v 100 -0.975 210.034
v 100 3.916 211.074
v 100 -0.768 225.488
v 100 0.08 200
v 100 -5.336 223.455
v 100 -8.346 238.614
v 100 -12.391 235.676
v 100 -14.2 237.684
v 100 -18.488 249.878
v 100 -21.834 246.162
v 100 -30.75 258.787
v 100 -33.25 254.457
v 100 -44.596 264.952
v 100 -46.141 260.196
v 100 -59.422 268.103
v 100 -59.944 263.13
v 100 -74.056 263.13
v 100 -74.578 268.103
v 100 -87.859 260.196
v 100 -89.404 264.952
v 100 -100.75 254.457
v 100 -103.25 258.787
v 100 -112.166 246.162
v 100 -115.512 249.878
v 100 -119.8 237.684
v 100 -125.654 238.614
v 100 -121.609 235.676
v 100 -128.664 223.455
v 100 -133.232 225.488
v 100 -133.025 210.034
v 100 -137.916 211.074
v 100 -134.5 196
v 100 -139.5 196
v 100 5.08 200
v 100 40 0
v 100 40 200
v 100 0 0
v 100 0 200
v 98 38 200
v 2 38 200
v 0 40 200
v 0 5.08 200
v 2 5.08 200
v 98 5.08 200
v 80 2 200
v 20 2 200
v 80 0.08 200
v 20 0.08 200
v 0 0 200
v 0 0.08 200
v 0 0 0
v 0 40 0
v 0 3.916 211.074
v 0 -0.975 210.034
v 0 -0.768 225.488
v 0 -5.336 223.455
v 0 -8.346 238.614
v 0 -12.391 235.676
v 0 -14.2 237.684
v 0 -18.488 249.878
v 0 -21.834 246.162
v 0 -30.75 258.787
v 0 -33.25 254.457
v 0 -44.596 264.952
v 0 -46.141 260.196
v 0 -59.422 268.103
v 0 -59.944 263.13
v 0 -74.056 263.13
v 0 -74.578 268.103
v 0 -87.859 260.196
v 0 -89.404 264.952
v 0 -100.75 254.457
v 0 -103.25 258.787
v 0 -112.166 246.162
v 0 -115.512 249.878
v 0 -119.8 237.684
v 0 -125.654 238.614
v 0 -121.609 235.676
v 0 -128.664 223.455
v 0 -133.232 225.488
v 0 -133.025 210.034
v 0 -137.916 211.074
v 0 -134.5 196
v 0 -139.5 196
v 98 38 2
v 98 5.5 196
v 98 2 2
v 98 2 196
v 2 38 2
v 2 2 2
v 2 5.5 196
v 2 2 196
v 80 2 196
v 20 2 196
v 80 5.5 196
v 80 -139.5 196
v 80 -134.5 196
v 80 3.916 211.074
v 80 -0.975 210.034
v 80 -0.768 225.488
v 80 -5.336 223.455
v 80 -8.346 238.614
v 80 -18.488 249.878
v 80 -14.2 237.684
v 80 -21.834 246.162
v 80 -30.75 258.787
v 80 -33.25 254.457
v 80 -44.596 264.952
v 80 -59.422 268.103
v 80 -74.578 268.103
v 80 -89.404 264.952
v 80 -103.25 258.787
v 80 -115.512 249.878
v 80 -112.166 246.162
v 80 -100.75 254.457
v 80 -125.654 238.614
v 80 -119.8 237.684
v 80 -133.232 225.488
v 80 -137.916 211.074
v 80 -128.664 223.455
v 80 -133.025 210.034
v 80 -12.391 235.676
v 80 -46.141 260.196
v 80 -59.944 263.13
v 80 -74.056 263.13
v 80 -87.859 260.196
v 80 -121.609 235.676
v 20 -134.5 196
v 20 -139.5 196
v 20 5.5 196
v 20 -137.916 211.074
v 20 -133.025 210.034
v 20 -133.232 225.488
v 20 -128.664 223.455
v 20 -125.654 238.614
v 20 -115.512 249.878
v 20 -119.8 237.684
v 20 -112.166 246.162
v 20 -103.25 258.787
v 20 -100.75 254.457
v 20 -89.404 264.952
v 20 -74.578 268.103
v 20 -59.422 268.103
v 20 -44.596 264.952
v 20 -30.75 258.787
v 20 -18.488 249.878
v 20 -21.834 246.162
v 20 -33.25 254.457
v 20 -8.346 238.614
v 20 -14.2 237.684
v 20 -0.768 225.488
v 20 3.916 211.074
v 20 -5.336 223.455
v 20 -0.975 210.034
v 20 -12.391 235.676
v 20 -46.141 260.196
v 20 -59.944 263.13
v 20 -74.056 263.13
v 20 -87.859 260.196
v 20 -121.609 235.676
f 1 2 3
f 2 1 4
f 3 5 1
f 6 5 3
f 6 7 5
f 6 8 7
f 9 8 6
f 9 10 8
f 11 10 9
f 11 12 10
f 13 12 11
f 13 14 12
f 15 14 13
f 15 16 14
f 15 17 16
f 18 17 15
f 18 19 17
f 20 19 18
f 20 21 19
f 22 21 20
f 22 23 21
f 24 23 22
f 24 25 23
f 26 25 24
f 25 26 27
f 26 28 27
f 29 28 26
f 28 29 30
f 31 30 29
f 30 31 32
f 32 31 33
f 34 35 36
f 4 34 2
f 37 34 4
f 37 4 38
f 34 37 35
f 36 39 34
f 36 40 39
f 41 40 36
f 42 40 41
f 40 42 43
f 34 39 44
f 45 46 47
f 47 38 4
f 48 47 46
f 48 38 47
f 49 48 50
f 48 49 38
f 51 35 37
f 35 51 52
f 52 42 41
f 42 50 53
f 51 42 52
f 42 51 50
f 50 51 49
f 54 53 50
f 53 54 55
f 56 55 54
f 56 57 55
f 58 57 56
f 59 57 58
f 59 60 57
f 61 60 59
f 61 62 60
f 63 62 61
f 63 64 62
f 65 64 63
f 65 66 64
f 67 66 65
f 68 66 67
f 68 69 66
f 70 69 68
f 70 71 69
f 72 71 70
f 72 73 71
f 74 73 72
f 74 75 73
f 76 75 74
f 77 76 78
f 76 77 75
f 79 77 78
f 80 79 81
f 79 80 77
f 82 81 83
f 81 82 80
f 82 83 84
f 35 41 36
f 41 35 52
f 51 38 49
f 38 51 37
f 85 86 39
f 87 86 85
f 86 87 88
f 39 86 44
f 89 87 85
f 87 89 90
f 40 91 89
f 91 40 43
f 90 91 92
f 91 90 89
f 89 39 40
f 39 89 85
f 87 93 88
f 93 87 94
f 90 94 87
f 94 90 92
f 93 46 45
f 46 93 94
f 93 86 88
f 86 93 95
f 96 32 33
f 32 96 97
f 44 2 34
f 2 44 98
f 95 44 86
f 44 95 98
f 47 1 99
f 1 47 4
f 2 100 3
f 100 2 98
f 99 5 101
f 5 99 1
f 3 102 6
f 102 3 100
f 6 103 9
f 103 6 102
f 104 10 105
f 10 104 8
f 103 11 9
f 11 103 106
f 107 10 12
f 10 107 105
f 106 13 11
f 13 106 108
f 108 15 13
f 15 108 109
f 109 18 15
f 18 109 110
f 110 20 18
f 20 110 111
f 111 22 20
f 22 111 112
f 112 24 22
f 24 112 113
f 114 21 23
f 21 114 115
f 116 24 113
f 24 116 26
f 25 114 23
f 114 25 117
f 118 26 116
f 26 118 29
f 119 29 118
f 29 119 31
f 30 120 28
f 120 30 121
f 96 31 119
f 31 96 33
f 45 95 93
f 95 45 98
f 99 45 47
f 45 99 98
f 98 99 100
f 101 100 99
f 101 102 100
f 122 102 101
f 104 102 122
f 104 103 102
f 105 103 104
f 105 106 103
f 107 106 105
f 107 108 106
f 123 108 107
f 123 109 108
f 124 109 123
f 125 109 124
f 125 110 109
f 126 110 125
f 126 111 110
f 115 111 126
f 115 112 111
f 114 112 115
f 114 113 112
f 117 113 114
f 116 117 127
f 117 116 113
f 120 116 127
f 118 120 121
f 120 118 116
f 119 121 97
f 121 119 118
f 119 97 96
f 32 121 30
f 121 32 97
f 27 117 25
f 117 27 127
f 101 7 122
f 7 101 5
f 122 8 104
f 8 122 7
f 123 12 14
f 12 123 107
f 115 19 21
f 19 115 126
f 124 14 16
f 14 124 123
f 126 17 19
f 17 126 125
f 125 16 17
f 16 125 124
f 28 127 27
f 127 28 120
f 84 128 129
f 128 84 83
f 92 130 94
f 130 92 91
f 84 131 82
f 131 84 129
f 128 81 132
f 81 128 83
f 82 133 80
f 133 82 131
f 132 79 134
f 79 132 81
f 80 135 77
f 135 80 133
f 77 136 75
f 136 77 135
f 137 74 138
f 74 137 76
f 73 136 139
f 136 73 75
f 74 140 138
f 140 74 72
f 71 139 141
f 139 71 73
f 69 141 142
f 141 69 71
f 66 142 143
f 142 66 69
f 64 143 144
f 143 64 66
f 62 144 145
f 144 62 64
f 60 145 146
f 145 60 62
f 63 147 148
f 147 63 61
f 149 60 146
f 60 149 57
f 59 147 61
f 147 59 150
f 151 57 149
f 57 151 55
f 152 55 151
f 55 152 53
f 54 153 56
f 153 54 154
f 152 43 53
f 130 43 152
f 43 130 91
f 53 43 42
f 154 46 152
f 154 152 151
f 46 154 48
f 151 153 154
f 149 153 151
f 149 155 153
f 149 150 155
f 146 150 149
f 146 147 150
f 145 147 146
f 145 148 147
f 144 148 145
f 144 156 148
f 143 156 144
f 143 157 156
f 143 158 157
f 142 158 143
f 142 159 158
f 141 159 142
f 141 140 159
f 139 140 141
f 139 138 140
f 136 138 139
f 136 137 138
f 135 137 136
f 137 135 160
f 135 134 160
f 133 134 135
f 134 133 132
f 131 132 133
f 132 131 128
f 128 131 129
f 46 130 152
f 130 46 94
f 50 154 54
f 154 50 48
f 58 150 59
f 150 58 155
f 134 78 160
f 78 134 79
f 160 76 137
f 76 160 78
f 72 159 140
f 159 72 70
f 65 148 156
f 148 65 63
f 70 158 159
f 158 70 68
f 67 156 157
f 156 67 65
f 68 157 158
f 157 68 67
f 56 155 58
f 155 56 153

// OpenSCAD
// Remote Control Holder for Bedside
// Basket dimensions: 20cm high, 10cm wide, 4cm deep
// Hooks fit around bamboo branch with 12.5cm diameter

// Define dimensions
basket_height = 200;  // 20cm = 200mm (OpenSCAD uses mm)
basket_width = 100;   // 10cm = 100mm
basket_depth = 40;    // 4cm = 40mm

branch_diameter = 125;  // 12.5cm = 125mm
branch_radius = branch_diameter / 2;  // Calculate radius: 62.5mm
hook_clearance = 5;  // Extra space for easy fit: 5mm
hook_inner_radius = branch_radius + hook_clearance;  // Inner radius of hook: 67.5mm
hook_thickness = 5;  // Thickness of hook material: 5mm
hook_width = 20;  // Width of each hook: 20mm

// Main basket (open box)
// difference() subtracts the inner box from the outer box to create walls
difference() {
    // Outer box - the full size of the basket
    cube([basket_width, basket_depth, basket_height]);
    
    // Inner box - subtract this to create the hollow interior
    // translate() moves the inner box slightly inward to create wall thickness
    translate([2, 2, 2])  // 2mm wall thickness on all sides
        cube([basket_width - 4, basket_depth - 4, basket_height - 2]);  // Leave 2mm bottom
}

// Left hook (on the left side at x=0, at the top)
// Position at left edge, at the top edge
translate([12.5, basket_depth - 107, basket_height - 4])  // Left edge, center of depth, at top
    rotate([90, 0, 0])  // Rotate 90 degrees around X axis
        rotate([0, 90, 0])  // Rotate hook to face sideways (around Y axis)
            hook();

// Right hook (mirrored from left hook)
// Position mirrored to the right side
translate([basket_width - 12.5, basket_depth - 107, basket_height - 4])  // Right side, mirrored X position
    rotate([90, 0, 0])  // Rotate 90 degrees around X axis
        rotate([0, -90, 0])  // Rotate hook to face sideways in opposite direction (around Y axis, mirrored)
            hook();

// Hook module definition
// This creates a reusable hook shape that extends upward from the basket top
module hook() {
    // The hook extends upward and curves to wrap around the branch above the basket
    // Move the hook upward so the curved part is above the basket top
    translate([0, 0, hook_inner_radius])  // Move up by the hook radius to position it above basket
        difference() {
            // Outer cylinder - the full hook shape
            // rotate_extrude() creates a 3D shape by rotating a 2D profile around an axis
            // The axis is vertical (Z), and we rotate 180 degrees to create a half-circle hook
            rotate_extrude(angle = 180)  // Rotate 180 degrees to create a half-circle
                translate([hook_inner_radius, 0, 0])  // Move the profile outward from the axis
                    square([hook_thickness, hook_width]);  // 2D profile: thickness x width
            
            // Inner cylinder - subtract this to create the hollow interior for the branch
            translate([0, 0, -1])  // Slight offset to ensure clean subtraction
                cylinder(h = hook_width + 2, r = hook_inner_radius);  // Hollow interior
        }
}
